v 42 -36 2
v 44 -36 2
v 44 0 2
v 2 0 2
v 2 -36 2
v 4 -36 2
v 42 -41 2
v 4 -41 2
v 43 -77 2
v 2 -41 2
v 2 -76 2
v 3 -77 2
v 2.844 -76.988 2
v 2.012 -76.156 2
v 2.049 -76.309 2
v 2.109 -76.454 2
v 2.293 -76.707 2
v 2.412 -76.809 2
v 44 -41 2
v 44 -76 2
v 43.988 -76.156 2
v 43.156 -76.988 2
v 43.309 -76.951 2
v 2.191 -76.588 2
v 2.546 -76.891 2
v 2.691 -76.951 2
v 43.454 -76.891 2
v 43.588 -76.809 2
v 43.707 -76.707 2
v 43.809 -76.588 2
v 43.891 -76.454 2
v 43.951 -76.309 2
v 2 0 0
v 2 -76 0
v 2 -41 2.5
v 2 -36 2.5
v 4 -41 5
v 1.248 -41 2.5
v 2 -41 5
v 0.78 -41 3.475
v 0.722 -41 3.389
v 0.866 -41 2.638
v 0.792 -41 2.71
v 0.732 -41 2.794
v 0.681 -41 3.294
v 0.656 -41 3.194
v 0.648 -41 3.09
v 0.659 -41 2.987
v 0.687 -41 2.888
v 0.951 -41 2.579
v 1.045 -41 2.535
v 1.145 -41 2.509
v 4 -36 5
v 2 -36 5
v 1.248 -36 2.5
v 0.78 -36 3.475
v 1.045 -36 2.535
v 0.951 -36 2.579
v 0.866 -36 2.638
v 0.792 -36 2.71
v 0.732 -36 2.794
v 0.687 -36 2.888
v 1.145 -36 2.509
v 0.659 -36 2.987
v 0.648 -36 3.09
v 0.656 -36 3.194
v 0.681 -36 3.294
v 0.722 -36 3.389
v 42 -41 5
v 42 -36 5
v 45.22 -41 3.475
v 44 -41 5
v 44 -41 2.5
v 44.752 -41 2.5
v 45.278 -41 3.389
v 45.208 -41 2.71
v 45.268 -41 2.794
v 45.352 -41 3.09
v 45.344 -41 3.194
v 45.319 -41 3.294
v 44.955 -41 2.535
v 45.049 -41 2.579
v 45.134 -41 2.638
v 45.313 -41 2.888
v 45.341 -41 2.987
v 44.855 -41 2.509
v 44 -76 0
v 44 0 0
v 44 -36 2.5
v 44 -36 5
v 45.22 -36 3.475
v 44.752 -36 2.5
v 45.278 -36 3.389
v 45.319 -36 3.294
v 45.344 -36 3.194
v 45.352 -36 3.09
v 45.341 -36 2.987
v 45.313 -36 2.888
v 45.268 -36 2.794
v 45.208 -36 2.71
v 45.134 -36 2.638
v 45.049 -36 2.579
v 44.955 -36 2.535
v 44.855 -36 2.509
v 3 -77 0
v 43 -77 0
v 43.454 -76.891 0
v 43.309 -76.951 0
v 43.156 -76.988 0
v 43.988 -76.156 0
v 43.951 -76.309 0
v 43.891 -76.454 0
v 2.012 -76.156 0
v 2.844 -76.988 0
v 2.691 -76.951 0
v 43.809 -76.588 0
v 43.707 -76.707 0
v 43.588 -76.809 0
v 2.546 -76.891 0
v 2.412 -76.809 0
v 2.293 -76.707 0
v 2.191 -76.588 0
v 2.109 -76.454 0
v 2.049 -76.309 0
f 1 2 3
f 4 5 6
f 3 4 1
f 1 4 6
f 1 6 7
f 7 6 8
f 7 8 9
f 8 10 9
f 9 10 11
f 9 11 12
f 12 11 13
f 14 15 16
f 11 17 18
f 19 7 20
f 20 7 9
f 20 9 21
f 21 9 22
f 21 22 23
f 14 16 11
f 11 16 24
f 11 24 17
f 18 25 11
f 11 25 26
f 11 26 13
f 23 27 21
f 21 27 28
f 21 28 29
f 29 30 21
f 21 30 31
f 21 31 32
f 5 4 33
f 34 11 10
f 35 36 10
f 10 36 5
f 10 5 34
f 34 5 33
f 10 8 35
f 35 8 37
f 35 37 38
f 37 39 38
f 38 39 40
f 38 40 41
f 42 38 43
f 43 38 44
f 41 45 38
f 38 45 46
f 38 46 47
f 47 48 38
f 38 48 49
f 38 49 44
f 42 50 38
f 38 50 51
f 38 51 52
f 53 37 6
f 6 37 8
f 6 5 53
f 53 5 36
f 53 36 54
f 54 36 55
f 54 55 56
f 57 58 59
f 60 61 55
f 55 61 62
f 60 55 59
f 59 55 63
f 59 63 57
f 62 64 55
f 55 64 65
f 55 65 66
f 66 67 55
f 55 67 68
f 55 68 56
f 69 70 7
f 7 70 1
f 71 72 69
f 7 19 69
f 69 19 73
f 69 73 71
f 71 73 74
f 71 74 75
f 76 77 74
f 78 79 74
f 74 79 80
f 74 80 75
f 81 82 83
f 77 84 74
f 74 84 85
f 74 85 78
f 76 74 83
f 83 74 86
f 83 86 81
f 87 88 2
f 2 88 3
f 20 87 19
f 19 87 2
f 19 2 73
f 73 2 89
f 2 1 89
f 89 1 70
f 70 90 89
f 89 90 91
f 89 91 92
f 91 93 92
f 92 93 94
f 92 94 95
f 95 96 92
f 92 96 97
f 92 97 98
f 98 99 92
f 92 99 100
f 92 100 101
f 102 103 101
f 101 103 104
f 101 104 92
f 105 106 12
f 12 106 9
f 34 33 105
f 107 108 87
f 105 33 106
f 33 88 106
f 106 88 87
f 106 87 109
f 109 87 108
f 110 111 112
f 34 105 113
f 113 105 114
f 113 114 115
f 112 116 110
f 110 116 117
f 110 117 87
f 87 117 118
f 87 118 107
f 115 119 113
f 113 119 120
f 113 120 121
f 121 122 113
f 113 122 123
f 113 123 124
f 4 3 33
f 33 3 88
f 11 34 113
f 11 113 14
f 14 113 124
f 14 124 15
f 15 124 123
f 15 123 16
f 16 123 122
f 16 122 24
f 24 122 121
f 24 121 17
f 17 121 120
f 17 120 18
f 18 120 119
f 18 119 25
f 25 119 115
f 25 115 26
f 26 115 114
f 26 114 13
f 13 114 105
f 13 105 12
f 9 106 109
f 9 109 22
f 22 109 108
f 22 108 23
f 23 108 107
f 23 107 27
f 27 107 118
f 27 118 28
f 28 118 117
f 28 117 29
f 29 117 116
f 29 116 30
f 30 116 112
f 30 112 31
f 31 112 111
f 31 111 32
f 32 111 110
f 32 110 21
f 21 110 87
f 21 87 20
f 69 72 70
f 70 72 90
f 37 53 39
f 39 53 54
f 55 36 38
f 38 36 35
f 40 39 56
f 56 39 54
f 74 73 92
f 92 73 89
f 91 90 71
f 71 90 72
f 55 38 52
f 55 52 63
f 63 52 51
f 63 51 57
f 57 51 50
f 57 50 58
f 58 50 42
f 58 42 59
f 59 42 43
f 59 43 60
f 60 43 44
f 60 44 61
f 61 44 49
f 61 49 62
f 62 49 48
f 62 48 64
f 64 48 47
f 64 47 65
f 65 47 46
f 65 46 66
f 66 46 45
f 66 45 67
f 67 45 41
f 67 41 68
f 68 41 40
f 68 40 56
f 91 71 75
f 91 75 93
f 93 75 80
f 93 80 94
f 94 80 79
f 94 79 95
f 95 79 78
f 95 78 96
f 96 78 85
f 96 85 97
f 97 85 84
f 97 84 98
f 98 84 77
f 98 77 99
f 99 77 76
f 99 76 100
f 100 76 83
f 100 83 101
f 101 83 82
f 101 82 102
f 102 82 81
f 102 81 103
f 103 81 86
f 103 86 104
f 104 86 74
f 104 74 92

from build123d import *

# Parameters (mm, degrees)
SKETCH1_W           = 46
SKETCH1_H           = 79
BOSS_EXTRUDE1_DEPTH = 2
SKETCH2_W           = 2
SKETCH2_H           = 5
BOSS_EXTRUDE2_DEPTH = 3
BOSS_EXTRUDE3_DEPTH = 5
FILLET1_R           = 0.6
SKETCH4_W           = 46
SKETCH4_H           = 79
SKETCH4_W_2         = 42
SKETCH4_H_2         = 75
CUT_EXTRUDE1_DEPTH  = 10
SKETCH5_W           = 42
SKETCH5_H           = 1
BOSS_EXTRUDE4_DEPTH = 2
SKETCH6_W           = 42
SKETCH6_H           = 1
BOSS_EXTRUDE5_DEPTH = 2
FILLET2_R           = 1
SKETCH7_W           = 5.220052767
SKETCH7_H           = 2.493732105
SKETCH7_W_2         = 4.447072359
SKETCH7_H_2         = 2.905988322
CUT_EXTRUDE2_DEPTH  = 10
BOSS_EXTRUDE6_DEPTH = 5
FILLET3_R           = 0.6


with BuildPart() as part:
    # Sketch1 → Boss-Extrude1 (new body)
    with BuildSketch(Plane.XY):
        with Locations((23, -39.5)):
            Rectangle(SKETCH1_W, SKETCH1_H)
    extrude(amount=BOSS_EXTRUDE1_DEPTH)

    # Sketch2 → Boss-Extrude2 (add)
    with BuildSketch(Plane.XY.offset(2)):
        with Locations((3, -38.5)):
            Rectangle(SKETCH2_W, SKETCH2_H)
        with Locations((43, -38.5)):
            Rectangle(SKETCH2_W, SKETCH2_H)
    extrude(amount=BOSS_EXTRUDE2_DEPTH)

    # Sketch3 → Boss-Extrude3 (add)
    with BuildSketch(Plane.XZ.offset(41)):
        Polygon((2, 7), (0, 5), (2, 5), (4, 5), (4, 7), align=None)
        Polygon((44, 7), (42, 7), (42, 5), (46, 5), align=None)
    extrude(amount=-BOSS_EXTRUDE3_DEPTH)

    # Fillet1
    fillet1_edges = [part.edges().sort_by_distance(p)[0] for p in [
        (0, -38.5, 5),
        (46, -38.5, 5),
    ]]
    fillet(fillet1_edges, radius=FILLET1_R)

    # Sketch4 → Cut-Extrude1 (cut)
    with BuildSketch(Plane.XY.offset(2)):
        with Locations((23, -39.5)):
            Rectangle(SKETCH4_W, SKETCH4_H)
        with Locations((23, -39.5)):
            Rectangle(SKETCH4_W_2, SKETCH4_H_2, mode=Mode.SUBTRACT)
    extrude(amount=-CUT_EXTRUDE1_DEPTH, mode=Mode.SUBTRACT)

    # Sketch5 → Boss-Extrude4 (add)
    with BuildSketch(Plane.XY.offset(2)):
        with Locations((23, -1.5)):
            Rectangle(SKETCH5_W, SKETCH5_H)
    extrude(amount=-BOSS_EXTRUDE4_DEPTH)

    # Sketch6 → Boss-Extrude5 (add)
    with BuildSketch(Plane.XY.offset(2)):
        with Locations((23, -0.5)):
            Rectangle(SKETCH6_W, SKETCH6_H)
    extrude(amount=-BOSS_EXTRUDE5_DEPTH)

    # Fillet2
    fillet2_edges = [part.edges().sort_by_distance(p)[0] for p in [
        (44, -77, 1),
        (2, -77, 1),
    ]]
    fillet(fillet2_edges, radius=FILLET2_R)

    # Sketch7 → Cut-Extrude2 (cut)
    with BuildSketch(Plane.XZ.offset(41)):
        with Locations((1.389973616, 6.246866052)):
            Rectangle(SKETCH7_W, SKETCH7_H)
        with Locations((44.22353618, 6.452994161)):
            Rectangle(SKETCH7_W_2, SKETCH7_H_2)
    extrude(amount=-CUT_EXTRUDE2_DEPTH, mode=Mode.SUBTRACT)

    # Sketch8 → Boss-Extrude6 (add)
    with BuildSketch(Plane.XZ.offset(41)):
        Polygon((2, 5), (0, 2.5), (4, 2.5), (4, 5), align=None)
        Polygon((42, 2.5), (46, 2.5), (44, 5), (42, 5), align=None)
    extrude(amount=-BOSS_EXTRUDE6_DEPTH)

    # Fillet3
    fillet3_edges = [part.edges().sort_by_distance(p)[0] for p in [
        (0, -38.5, 2.5),
        (46, -38.5, 2.5),
    ]]
    fillet(fillet3_edges, radius=FILLET3_R)


solid = part.part
